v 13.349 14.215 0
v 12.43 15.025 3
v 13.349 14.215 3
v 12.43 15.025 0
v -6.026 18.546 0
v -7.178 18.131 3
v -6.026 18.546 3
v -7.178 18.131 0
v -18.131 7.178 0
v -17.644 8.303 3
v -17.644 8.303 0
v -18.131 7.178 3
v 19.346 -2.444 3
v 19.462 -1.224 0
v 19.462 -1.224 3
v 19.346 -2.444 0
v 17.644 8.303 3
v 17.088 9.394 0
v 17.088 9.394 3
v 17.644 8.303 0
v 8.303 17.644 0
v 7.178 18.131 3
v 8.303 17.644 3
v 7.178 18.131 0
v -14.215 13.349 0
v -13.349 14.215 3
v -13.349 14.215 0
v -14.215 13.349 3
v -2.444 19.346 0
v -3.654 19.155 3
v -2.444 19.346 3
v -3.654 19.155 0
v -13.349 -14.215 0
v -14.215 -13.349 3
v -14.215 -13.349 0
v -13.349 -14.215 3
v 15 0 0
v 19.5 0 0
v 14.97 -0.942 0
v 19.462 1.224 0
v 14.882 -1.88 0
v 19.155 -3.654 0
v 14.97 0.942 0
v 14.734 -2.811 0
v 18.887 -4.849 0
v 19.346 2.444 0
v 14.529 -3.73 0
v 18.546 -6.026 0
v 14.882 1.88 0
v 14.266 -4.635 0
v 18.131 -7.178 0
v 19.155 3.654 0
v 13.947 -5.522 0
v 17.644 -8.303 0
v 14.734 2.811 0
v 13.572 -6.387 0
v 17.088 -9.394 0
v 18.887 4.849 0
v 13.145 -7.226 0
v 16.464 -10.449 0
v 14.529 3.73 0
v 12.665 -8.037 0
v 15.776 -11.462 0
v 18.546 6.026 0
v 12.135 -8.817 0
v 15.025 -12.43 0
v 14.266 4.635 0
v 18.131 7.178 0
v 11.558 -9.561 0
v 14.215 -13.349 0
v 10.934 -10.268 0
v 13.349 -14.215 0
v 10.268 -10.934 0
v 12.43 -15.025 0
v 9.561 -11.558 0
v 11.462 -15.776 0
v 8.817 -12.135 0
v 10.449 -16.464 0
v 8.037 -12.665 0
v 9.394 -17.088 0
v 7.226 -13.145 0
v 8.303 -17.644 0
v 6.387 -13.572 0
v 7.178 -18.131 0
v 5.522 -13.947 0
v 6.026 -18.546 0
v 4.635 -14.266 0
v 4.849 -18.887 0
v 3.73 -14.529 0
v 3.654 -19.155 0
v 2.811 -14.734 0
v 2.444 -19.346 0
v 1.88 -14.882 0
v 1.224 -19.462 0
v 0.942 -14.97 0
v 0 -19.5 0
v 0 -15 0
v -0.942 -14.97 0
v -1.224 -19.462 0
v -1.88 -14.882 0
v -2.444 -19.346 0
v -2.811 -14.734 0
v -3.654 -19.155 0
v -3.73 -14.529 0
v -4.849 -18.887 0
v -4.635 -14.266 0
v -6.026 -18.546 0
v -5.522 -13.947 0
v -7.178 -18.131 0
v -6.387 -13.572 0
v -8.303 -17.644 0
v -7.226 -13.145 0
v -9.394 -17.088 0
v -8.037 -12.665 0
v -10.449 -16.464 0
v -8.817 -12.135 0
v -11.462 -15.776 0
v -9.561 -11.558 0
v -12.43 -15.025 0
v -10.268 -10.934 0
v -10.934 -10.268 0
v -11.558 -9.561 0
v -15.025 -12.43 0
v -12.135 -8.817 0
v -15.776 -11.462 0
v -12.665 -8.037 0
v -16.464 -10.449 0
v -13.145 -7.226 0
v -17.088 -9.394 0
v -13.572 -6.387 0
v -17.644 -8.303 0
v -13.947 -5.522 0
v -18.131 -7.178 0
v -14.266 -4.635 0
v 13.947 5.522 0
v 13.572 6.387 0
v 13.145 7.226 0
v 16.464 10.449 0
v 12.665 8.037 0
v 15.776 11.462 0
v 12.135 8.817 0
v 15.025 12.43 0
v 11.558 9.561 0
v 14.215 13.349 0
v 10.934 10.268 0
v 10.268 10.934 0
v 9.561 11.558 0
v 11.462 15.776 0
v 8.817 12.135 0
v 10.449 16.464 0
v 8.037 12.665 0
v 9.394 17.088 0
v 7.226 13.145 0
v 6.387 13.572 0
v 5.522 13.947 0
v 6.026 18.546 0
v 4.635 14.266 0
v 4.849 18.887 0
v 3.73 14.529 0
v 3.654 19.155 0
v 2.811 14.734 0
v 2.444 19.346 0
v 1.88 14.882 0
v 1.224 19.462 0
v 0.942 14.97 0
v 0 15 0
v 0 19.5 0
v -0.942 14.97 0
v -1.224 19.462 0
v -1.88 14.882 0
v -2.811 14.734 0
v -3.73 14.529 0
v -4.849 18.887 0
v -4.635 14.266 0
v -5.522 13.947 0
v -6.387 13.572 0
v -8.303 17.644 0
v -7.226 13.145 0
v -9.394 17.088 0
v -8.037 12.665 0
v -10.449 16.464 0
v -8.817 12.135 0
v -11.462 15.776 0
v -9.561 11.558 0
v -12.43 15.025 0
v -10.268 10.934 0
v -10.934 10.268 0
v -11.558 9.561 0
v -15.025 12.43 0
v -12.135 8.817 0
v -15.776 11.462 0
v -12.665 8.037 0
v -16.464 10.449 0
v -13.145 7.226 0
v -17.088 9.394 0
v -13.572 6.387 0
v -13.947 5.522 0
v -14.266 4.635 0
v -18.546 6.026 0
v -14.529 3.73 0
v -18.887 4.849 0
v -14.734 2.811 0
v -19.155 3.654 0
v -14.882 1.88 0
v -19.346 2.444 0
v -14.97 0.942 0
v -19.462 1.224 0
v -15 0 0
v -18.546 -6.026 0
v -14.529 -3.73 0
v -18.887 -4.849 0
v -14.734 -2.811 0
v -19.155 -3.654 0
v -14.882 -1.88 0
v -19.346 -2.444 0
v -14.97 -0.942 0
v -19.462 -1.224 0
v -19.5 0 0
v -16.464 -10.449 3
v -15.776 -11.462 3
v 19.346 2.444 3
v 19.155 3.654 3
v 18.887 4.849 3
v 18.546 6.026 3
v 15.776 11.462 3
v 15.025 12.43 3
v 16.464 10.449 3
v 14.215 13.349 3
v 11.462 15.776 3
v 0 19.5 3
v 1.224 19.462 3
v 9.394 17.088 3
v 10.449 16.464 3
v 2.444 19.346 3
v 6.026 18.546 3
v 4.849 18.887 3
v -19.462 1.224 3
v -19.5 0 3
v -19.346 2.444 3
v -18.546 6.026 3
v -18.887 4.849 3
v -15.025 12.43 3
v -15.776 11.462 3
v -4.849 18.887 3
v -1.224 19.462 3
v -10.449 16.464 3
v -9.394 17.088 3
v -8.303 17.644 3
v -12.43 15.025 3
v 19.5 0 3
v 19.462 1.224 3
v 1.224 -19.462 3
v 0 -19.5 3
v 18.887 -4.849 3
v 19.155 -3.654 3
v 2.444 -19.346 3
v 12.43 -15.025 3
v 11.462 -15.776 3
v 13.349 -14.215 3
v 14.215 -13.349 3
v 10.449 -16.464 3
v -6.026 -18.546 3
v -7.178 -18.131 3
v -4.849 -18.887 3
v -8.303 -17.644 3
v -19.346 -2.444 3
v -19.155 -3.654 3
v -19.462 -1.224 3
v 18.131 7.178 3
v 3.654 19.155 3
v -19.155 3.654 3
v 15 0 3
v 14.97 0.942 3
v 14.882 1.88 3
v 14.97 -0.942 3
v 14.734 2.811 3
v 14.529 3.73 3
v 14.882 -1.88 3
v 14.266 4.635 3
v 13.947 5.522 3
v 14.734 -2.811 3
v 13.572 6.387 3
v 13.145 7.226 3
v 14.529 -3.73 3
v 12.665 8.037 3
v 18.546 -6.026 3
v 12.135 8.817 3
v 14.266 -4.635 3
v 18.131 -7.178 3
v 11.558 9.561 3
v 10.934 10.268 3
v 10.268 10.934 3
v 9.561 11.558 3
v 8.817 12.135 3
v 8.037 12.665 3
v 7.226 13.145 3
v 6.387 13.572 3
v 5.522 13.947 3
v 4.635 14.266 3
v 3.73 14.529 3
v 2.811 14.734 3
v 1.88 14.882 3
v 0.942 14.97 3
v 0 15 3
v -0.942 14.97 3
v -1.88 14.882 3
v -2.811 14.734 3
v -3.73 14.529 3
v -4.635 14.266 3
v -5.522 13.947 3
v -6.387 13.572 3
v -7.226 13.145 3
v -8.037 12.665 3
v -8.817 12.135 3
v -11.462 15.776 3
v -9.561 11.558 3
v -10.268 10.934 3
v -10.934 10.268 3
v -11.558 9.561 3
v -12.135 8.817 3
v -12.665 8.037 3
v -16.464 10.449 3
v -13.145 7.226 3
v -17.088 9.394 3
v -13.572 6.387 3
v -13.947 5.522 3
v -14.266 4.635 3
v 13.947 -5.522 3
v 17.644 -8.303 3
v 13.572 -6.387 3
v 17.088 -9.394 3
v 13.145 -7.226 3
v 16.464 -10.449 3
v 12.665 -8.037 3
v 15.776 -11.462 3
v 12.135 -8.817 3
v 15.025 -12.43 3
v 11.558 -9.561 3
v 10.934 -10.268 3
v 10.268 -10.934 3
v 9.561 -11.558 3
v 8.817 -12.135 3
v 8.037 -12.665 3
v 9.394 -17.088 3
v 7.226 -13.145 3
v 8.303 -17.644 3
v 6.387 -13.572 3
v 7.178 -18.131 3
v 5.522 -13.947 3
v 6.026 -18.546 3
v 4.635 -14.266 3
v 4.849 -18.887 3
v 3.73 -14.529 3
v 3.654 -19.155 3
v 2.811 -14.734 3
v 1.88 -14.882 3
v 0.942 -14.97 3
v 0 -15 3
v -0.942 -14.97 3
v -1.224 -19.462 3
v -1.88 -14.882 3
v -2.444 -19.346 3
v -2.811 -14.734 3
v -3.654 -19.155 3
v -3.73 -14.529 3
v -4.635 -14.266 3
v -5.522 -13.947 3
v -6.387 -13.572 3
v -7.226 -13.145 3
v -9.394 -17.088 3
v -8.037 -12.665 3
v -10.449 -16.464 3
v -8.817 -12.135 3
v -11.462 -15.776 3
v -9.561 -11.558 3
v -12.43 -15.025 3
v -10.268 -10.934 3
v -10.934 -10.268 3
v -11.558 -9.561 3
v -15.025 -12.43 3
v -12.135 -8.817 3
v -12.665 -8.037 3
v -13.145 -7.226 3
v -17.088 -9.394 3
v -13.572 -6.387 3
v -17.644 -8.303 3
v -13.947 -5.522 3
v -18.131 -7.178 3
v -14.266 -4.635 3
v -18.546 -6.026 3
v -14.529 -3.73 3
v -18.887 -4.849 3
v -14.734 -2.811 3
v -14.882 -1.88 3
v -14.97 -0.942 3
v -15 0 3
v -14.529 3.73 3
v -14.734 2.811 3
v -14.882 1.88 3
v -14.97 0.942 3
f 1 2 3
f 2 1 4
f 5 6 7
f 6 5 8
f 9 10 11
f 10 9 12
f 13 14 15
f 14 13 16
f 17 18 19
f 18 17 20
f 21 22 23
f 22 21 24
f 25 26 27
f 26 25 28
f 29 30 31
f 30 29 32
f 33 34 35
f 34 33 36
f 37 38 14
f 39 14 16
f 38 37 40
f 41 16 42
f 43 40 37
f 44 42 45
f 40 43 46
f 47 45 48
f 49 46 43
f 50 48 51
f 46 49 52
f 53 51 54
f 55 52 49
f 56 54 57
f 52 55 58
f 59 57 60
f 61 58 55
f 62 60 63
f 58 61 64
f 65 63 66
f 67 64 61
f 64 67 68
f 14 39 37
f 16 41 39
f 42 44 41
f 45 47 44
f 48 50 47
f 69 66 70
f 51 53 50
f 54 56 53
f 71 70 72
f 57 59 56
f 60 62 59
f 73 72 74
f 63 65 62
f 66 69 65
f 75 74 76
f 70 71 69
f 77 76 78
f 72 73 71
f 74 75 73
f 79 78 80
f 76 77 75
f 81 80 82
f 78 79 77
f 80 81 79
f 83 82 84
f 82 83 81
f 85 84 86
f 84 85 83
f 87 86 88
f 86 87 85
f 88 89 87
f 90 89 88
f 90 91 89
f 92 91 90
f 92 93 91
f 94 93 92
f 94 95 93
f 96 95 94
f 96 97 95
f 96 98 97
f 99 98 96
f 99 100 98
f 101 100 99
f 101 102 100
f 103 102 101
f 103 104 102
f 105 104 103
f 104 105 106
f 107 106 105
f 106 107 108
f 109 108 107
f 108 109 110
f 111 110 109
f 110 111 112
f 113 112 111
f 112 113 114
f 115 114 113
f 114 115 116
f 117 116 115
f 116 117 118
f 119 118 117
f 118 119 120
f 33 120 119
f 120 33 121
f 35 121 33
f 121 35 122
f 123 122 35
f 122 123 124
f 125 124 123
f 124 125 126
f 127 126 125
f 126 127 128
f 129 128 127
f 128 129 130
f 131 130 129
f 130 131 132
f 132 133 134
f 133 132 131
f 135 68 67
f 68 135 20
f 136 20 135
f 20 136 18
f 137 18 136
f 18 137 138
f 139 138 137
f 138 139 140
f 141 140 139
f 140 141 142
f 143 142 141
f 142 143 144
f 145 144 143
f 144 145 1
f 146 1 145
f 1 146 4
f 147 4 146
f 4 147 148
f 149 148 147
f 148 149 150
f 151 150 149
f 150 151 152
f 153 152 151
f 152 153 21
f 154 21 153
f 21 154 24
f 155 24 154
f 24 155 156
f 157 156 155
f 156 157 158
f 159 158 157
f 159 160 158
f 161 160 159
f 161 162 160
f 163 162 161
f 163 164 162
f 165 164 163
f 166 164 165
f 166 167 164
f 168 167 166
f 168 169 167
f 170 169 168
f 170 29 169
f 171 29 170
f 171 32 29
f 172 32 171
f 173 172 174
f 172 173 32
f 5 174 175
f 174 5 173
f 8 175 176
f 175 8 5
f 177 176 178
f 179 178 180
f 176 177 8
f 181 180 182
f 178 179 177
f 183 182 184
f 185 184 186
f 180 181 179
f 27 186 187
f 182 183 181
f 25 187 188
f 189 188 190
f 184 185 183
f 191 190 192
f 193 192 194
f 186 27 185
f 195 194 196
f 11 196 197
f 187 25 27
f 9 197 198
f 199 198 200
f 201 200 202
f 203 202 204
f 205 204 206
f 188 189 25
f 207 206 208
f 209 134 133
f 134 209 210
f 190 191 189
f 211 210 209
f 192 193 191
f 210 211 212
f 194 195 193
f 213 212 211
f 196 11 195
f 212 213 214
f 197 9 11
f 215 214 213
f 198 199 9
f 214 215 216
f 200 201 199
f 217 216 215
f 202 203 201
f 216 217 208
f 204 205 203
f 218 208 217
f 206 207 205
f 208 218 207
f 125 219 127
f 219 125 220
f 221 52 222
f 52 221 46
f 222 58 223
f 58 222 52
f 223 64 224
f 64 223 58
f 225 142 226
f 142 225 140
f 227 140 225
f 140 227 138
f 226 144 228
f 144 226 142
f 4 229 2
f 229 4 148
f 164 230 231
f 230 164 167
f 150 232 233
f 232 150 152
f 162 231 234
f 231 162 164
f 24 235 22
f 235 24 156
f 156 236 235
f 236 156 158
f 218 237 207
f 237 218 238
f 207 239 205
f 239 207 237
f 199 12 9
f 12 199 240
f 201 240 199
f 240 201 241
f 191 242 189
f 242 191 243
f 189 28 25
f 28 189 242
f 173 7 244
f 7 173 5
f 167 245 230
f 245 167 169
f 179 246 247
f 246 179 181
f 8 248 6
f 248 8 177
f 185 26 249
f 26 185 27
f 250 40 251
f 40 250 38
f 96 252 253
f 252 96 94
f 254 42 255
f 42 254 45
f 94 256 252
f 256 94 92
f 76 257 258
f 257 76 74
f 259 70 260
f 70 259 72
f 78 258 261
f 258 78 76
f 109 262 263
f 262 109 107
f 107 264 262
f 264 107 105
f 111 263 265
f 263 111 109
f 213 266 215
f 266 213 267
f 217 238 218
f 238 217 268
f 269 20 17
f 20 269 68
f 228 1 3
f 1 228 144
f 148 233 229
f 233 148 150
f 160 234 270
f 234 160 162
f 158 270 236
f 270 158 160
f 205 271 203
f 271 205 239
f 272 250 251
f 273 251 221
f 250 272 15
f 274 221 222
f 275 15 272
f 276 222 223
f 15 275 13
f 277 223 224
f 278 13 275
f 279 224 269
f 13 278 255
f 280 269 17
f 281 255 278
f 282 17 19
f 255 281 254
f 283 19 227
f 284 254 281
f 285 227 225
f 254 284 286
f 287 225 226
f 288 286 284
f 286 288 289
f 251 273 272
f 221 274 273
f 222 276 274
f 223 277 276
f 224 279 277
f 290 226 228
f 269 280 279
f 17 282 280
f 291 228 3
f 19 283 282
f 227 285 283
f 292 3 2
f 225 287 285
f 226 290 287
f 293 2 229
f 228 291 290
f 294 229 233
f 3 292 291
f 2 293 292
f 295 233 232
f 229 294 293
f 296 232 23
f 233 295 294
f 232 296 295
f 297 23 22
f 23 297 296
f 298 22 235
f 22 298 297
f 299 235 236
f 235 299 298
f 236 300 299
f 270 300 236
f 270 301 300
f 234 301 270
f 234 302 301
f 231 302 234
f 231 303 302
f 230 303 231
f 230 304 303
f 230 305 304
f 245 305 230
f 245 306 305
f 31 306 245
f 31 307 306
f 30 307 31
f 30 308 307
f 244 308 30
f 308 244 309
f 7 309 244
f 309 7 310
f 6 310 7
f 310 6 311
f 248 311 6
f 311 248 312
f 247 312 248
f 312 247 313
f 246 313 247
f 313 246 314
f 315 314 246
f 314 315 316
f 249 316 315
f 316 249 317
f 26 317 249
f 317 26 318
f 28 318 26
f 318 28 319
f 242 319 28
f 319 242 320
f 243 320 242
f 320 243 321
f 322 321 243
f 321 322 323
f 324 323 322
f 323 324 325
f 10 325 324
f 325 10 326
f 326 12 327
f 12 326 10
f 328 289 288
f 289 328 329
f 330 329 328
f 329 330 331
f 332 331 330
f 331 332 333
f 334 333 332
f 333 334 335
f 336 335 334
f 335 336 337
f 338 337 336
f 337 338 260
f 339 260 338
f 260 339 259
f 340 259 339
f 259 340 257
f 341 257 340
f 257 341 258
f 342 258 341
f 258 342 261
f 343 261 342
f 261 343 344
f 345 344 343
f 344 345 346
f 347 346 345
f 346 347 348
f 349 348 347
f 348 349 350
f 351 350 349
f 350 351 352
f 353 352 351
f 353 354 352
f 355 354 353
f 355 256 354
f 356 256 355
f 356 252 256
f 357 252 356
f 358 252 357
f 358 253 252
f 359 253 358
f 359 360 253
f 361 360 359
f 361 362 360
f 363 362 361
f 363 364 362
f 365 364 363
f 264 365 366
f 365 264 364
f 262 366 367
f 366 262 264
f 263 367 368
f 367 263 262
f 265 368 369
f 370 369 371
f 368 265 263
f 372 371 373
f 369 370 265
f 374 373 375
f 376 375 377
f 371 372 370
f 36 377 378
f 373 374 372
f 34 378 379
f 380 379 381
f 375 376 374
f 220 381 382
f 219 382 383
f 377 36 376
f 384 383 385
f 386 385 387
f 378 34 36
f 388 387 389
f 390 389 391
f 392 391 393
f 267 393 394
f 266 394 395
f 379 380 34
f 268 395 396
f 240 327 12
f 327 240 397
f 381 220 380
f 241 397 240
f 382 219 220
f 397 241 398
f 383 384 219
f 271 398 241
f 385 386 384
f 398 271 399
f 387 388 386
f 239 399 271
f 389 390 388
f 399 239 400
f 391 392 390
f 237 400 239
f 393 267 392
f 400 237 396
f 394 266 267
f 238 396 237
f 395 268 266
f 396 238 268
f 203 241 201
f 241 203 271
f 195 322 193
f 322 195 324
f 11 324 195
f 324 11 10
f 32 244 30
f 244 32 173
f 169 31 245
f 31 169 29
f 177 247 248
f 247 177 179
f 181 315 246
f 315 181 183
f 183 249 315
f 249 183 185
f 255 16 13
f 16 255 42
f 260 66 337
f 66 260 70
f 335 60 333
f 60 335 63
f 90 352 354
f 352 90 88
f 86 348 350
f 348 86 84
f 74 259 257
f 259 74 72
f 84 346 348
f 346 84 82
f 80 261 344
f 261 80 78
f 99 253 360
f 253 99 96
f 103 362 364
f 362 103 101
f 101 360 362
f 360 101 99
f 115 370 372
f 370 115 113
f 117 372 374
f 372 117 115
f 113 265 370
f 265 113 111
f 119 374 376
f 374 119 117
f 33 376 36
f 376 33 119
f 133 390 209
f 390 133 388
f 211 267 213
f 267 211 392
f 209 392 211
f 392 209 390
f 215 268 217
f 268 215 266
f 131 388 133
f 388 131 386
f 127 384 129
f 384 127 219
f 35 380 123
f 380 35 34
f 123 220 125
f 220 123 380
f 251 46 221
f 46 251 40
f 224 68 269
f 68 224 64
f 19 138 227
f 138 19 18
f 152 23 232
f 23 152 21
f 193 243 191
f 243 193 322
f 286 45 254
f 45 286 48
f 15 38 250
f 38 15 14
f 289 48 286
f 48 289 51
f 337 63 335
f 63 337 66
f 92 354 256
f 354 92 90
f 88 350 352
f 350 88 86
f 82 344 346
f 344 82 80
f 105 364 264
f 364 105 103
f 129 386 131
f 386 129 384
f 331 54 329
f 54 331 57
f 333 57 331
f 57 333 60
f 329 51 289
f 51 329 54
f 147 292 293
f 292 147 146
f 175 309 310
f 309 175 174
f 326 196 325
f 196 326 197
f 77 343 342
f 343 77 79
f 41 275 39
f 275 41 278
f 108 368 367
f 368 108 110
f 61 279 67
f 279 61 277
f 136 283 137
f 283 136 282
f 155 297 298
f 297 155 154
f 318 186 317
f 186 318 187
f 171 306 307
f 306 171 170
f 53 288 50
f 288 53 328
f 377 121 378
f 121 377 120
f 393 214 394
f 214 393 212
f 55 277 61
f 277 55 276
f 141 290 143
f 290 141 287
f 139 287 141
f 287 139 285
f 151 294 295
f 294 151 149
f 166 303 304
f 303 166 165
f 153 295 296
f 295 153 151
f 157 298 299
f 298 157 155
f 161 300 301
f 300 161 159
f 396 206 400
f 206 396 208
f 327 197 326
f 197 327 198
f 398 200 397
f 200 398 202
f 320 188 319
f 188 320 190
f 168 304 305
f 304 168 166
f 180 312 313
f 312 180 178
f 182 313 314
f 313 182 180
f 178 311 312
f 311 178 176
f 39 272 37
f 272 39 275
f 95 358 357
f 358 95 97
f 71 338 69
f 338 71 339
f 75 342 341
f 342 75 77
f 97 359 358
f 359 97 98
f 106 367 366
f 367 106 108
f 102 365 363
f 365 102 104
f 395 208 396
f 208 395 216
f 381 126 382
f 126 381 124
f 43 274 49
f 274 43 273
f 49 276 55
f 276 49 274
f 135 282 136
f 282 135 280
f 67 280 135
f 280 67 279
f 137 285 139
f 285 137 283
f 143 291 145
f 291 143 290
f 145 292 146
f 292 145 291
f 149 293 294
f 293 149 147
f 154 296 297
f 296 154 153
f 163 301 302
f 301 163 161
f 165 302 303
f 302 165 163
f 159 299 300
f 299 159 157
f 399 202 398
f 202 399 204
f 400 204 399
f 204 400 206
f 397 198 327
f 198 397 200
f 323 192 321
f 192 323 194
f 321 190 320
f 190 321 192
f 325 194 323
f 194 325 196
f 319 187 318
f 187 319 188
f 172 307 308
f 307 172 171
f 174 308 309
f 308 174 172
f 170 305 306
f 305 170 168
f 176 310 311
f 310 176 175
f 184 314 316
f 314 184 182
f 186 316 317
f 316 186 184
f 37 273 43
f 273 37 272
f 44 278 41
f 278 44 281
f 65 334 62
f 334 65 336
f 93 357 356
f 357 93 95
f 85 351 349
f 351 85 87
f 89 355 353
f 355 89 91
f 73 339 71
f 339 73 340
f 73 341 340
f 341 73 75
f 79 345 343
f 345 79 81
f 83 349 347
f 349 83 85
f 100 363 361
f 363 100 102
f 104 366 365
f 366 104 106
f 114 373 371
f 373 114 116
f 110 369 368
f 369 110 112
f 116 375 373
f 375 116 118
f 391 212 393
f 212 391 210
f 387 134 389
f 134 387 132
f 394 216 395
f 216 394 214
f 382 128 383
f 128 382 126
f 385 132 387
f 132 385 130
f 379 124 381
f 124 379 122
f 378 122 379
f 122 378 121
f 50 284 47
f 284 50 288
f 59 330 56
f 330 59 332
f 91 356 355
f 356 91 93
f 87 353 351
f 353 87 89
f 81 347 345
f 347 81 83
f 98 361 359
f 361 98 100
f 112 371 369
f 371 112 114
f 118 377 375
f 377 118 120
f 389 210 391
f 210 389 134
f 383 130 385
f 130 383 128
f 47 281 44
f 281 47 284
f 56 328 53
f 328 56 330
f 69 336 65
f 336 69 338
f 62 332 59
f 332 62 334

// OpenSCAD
$fn=100;

difference() {
  cylinder(3,39/2,39/2);
  cylinder(3,30/2,30/2);
}
